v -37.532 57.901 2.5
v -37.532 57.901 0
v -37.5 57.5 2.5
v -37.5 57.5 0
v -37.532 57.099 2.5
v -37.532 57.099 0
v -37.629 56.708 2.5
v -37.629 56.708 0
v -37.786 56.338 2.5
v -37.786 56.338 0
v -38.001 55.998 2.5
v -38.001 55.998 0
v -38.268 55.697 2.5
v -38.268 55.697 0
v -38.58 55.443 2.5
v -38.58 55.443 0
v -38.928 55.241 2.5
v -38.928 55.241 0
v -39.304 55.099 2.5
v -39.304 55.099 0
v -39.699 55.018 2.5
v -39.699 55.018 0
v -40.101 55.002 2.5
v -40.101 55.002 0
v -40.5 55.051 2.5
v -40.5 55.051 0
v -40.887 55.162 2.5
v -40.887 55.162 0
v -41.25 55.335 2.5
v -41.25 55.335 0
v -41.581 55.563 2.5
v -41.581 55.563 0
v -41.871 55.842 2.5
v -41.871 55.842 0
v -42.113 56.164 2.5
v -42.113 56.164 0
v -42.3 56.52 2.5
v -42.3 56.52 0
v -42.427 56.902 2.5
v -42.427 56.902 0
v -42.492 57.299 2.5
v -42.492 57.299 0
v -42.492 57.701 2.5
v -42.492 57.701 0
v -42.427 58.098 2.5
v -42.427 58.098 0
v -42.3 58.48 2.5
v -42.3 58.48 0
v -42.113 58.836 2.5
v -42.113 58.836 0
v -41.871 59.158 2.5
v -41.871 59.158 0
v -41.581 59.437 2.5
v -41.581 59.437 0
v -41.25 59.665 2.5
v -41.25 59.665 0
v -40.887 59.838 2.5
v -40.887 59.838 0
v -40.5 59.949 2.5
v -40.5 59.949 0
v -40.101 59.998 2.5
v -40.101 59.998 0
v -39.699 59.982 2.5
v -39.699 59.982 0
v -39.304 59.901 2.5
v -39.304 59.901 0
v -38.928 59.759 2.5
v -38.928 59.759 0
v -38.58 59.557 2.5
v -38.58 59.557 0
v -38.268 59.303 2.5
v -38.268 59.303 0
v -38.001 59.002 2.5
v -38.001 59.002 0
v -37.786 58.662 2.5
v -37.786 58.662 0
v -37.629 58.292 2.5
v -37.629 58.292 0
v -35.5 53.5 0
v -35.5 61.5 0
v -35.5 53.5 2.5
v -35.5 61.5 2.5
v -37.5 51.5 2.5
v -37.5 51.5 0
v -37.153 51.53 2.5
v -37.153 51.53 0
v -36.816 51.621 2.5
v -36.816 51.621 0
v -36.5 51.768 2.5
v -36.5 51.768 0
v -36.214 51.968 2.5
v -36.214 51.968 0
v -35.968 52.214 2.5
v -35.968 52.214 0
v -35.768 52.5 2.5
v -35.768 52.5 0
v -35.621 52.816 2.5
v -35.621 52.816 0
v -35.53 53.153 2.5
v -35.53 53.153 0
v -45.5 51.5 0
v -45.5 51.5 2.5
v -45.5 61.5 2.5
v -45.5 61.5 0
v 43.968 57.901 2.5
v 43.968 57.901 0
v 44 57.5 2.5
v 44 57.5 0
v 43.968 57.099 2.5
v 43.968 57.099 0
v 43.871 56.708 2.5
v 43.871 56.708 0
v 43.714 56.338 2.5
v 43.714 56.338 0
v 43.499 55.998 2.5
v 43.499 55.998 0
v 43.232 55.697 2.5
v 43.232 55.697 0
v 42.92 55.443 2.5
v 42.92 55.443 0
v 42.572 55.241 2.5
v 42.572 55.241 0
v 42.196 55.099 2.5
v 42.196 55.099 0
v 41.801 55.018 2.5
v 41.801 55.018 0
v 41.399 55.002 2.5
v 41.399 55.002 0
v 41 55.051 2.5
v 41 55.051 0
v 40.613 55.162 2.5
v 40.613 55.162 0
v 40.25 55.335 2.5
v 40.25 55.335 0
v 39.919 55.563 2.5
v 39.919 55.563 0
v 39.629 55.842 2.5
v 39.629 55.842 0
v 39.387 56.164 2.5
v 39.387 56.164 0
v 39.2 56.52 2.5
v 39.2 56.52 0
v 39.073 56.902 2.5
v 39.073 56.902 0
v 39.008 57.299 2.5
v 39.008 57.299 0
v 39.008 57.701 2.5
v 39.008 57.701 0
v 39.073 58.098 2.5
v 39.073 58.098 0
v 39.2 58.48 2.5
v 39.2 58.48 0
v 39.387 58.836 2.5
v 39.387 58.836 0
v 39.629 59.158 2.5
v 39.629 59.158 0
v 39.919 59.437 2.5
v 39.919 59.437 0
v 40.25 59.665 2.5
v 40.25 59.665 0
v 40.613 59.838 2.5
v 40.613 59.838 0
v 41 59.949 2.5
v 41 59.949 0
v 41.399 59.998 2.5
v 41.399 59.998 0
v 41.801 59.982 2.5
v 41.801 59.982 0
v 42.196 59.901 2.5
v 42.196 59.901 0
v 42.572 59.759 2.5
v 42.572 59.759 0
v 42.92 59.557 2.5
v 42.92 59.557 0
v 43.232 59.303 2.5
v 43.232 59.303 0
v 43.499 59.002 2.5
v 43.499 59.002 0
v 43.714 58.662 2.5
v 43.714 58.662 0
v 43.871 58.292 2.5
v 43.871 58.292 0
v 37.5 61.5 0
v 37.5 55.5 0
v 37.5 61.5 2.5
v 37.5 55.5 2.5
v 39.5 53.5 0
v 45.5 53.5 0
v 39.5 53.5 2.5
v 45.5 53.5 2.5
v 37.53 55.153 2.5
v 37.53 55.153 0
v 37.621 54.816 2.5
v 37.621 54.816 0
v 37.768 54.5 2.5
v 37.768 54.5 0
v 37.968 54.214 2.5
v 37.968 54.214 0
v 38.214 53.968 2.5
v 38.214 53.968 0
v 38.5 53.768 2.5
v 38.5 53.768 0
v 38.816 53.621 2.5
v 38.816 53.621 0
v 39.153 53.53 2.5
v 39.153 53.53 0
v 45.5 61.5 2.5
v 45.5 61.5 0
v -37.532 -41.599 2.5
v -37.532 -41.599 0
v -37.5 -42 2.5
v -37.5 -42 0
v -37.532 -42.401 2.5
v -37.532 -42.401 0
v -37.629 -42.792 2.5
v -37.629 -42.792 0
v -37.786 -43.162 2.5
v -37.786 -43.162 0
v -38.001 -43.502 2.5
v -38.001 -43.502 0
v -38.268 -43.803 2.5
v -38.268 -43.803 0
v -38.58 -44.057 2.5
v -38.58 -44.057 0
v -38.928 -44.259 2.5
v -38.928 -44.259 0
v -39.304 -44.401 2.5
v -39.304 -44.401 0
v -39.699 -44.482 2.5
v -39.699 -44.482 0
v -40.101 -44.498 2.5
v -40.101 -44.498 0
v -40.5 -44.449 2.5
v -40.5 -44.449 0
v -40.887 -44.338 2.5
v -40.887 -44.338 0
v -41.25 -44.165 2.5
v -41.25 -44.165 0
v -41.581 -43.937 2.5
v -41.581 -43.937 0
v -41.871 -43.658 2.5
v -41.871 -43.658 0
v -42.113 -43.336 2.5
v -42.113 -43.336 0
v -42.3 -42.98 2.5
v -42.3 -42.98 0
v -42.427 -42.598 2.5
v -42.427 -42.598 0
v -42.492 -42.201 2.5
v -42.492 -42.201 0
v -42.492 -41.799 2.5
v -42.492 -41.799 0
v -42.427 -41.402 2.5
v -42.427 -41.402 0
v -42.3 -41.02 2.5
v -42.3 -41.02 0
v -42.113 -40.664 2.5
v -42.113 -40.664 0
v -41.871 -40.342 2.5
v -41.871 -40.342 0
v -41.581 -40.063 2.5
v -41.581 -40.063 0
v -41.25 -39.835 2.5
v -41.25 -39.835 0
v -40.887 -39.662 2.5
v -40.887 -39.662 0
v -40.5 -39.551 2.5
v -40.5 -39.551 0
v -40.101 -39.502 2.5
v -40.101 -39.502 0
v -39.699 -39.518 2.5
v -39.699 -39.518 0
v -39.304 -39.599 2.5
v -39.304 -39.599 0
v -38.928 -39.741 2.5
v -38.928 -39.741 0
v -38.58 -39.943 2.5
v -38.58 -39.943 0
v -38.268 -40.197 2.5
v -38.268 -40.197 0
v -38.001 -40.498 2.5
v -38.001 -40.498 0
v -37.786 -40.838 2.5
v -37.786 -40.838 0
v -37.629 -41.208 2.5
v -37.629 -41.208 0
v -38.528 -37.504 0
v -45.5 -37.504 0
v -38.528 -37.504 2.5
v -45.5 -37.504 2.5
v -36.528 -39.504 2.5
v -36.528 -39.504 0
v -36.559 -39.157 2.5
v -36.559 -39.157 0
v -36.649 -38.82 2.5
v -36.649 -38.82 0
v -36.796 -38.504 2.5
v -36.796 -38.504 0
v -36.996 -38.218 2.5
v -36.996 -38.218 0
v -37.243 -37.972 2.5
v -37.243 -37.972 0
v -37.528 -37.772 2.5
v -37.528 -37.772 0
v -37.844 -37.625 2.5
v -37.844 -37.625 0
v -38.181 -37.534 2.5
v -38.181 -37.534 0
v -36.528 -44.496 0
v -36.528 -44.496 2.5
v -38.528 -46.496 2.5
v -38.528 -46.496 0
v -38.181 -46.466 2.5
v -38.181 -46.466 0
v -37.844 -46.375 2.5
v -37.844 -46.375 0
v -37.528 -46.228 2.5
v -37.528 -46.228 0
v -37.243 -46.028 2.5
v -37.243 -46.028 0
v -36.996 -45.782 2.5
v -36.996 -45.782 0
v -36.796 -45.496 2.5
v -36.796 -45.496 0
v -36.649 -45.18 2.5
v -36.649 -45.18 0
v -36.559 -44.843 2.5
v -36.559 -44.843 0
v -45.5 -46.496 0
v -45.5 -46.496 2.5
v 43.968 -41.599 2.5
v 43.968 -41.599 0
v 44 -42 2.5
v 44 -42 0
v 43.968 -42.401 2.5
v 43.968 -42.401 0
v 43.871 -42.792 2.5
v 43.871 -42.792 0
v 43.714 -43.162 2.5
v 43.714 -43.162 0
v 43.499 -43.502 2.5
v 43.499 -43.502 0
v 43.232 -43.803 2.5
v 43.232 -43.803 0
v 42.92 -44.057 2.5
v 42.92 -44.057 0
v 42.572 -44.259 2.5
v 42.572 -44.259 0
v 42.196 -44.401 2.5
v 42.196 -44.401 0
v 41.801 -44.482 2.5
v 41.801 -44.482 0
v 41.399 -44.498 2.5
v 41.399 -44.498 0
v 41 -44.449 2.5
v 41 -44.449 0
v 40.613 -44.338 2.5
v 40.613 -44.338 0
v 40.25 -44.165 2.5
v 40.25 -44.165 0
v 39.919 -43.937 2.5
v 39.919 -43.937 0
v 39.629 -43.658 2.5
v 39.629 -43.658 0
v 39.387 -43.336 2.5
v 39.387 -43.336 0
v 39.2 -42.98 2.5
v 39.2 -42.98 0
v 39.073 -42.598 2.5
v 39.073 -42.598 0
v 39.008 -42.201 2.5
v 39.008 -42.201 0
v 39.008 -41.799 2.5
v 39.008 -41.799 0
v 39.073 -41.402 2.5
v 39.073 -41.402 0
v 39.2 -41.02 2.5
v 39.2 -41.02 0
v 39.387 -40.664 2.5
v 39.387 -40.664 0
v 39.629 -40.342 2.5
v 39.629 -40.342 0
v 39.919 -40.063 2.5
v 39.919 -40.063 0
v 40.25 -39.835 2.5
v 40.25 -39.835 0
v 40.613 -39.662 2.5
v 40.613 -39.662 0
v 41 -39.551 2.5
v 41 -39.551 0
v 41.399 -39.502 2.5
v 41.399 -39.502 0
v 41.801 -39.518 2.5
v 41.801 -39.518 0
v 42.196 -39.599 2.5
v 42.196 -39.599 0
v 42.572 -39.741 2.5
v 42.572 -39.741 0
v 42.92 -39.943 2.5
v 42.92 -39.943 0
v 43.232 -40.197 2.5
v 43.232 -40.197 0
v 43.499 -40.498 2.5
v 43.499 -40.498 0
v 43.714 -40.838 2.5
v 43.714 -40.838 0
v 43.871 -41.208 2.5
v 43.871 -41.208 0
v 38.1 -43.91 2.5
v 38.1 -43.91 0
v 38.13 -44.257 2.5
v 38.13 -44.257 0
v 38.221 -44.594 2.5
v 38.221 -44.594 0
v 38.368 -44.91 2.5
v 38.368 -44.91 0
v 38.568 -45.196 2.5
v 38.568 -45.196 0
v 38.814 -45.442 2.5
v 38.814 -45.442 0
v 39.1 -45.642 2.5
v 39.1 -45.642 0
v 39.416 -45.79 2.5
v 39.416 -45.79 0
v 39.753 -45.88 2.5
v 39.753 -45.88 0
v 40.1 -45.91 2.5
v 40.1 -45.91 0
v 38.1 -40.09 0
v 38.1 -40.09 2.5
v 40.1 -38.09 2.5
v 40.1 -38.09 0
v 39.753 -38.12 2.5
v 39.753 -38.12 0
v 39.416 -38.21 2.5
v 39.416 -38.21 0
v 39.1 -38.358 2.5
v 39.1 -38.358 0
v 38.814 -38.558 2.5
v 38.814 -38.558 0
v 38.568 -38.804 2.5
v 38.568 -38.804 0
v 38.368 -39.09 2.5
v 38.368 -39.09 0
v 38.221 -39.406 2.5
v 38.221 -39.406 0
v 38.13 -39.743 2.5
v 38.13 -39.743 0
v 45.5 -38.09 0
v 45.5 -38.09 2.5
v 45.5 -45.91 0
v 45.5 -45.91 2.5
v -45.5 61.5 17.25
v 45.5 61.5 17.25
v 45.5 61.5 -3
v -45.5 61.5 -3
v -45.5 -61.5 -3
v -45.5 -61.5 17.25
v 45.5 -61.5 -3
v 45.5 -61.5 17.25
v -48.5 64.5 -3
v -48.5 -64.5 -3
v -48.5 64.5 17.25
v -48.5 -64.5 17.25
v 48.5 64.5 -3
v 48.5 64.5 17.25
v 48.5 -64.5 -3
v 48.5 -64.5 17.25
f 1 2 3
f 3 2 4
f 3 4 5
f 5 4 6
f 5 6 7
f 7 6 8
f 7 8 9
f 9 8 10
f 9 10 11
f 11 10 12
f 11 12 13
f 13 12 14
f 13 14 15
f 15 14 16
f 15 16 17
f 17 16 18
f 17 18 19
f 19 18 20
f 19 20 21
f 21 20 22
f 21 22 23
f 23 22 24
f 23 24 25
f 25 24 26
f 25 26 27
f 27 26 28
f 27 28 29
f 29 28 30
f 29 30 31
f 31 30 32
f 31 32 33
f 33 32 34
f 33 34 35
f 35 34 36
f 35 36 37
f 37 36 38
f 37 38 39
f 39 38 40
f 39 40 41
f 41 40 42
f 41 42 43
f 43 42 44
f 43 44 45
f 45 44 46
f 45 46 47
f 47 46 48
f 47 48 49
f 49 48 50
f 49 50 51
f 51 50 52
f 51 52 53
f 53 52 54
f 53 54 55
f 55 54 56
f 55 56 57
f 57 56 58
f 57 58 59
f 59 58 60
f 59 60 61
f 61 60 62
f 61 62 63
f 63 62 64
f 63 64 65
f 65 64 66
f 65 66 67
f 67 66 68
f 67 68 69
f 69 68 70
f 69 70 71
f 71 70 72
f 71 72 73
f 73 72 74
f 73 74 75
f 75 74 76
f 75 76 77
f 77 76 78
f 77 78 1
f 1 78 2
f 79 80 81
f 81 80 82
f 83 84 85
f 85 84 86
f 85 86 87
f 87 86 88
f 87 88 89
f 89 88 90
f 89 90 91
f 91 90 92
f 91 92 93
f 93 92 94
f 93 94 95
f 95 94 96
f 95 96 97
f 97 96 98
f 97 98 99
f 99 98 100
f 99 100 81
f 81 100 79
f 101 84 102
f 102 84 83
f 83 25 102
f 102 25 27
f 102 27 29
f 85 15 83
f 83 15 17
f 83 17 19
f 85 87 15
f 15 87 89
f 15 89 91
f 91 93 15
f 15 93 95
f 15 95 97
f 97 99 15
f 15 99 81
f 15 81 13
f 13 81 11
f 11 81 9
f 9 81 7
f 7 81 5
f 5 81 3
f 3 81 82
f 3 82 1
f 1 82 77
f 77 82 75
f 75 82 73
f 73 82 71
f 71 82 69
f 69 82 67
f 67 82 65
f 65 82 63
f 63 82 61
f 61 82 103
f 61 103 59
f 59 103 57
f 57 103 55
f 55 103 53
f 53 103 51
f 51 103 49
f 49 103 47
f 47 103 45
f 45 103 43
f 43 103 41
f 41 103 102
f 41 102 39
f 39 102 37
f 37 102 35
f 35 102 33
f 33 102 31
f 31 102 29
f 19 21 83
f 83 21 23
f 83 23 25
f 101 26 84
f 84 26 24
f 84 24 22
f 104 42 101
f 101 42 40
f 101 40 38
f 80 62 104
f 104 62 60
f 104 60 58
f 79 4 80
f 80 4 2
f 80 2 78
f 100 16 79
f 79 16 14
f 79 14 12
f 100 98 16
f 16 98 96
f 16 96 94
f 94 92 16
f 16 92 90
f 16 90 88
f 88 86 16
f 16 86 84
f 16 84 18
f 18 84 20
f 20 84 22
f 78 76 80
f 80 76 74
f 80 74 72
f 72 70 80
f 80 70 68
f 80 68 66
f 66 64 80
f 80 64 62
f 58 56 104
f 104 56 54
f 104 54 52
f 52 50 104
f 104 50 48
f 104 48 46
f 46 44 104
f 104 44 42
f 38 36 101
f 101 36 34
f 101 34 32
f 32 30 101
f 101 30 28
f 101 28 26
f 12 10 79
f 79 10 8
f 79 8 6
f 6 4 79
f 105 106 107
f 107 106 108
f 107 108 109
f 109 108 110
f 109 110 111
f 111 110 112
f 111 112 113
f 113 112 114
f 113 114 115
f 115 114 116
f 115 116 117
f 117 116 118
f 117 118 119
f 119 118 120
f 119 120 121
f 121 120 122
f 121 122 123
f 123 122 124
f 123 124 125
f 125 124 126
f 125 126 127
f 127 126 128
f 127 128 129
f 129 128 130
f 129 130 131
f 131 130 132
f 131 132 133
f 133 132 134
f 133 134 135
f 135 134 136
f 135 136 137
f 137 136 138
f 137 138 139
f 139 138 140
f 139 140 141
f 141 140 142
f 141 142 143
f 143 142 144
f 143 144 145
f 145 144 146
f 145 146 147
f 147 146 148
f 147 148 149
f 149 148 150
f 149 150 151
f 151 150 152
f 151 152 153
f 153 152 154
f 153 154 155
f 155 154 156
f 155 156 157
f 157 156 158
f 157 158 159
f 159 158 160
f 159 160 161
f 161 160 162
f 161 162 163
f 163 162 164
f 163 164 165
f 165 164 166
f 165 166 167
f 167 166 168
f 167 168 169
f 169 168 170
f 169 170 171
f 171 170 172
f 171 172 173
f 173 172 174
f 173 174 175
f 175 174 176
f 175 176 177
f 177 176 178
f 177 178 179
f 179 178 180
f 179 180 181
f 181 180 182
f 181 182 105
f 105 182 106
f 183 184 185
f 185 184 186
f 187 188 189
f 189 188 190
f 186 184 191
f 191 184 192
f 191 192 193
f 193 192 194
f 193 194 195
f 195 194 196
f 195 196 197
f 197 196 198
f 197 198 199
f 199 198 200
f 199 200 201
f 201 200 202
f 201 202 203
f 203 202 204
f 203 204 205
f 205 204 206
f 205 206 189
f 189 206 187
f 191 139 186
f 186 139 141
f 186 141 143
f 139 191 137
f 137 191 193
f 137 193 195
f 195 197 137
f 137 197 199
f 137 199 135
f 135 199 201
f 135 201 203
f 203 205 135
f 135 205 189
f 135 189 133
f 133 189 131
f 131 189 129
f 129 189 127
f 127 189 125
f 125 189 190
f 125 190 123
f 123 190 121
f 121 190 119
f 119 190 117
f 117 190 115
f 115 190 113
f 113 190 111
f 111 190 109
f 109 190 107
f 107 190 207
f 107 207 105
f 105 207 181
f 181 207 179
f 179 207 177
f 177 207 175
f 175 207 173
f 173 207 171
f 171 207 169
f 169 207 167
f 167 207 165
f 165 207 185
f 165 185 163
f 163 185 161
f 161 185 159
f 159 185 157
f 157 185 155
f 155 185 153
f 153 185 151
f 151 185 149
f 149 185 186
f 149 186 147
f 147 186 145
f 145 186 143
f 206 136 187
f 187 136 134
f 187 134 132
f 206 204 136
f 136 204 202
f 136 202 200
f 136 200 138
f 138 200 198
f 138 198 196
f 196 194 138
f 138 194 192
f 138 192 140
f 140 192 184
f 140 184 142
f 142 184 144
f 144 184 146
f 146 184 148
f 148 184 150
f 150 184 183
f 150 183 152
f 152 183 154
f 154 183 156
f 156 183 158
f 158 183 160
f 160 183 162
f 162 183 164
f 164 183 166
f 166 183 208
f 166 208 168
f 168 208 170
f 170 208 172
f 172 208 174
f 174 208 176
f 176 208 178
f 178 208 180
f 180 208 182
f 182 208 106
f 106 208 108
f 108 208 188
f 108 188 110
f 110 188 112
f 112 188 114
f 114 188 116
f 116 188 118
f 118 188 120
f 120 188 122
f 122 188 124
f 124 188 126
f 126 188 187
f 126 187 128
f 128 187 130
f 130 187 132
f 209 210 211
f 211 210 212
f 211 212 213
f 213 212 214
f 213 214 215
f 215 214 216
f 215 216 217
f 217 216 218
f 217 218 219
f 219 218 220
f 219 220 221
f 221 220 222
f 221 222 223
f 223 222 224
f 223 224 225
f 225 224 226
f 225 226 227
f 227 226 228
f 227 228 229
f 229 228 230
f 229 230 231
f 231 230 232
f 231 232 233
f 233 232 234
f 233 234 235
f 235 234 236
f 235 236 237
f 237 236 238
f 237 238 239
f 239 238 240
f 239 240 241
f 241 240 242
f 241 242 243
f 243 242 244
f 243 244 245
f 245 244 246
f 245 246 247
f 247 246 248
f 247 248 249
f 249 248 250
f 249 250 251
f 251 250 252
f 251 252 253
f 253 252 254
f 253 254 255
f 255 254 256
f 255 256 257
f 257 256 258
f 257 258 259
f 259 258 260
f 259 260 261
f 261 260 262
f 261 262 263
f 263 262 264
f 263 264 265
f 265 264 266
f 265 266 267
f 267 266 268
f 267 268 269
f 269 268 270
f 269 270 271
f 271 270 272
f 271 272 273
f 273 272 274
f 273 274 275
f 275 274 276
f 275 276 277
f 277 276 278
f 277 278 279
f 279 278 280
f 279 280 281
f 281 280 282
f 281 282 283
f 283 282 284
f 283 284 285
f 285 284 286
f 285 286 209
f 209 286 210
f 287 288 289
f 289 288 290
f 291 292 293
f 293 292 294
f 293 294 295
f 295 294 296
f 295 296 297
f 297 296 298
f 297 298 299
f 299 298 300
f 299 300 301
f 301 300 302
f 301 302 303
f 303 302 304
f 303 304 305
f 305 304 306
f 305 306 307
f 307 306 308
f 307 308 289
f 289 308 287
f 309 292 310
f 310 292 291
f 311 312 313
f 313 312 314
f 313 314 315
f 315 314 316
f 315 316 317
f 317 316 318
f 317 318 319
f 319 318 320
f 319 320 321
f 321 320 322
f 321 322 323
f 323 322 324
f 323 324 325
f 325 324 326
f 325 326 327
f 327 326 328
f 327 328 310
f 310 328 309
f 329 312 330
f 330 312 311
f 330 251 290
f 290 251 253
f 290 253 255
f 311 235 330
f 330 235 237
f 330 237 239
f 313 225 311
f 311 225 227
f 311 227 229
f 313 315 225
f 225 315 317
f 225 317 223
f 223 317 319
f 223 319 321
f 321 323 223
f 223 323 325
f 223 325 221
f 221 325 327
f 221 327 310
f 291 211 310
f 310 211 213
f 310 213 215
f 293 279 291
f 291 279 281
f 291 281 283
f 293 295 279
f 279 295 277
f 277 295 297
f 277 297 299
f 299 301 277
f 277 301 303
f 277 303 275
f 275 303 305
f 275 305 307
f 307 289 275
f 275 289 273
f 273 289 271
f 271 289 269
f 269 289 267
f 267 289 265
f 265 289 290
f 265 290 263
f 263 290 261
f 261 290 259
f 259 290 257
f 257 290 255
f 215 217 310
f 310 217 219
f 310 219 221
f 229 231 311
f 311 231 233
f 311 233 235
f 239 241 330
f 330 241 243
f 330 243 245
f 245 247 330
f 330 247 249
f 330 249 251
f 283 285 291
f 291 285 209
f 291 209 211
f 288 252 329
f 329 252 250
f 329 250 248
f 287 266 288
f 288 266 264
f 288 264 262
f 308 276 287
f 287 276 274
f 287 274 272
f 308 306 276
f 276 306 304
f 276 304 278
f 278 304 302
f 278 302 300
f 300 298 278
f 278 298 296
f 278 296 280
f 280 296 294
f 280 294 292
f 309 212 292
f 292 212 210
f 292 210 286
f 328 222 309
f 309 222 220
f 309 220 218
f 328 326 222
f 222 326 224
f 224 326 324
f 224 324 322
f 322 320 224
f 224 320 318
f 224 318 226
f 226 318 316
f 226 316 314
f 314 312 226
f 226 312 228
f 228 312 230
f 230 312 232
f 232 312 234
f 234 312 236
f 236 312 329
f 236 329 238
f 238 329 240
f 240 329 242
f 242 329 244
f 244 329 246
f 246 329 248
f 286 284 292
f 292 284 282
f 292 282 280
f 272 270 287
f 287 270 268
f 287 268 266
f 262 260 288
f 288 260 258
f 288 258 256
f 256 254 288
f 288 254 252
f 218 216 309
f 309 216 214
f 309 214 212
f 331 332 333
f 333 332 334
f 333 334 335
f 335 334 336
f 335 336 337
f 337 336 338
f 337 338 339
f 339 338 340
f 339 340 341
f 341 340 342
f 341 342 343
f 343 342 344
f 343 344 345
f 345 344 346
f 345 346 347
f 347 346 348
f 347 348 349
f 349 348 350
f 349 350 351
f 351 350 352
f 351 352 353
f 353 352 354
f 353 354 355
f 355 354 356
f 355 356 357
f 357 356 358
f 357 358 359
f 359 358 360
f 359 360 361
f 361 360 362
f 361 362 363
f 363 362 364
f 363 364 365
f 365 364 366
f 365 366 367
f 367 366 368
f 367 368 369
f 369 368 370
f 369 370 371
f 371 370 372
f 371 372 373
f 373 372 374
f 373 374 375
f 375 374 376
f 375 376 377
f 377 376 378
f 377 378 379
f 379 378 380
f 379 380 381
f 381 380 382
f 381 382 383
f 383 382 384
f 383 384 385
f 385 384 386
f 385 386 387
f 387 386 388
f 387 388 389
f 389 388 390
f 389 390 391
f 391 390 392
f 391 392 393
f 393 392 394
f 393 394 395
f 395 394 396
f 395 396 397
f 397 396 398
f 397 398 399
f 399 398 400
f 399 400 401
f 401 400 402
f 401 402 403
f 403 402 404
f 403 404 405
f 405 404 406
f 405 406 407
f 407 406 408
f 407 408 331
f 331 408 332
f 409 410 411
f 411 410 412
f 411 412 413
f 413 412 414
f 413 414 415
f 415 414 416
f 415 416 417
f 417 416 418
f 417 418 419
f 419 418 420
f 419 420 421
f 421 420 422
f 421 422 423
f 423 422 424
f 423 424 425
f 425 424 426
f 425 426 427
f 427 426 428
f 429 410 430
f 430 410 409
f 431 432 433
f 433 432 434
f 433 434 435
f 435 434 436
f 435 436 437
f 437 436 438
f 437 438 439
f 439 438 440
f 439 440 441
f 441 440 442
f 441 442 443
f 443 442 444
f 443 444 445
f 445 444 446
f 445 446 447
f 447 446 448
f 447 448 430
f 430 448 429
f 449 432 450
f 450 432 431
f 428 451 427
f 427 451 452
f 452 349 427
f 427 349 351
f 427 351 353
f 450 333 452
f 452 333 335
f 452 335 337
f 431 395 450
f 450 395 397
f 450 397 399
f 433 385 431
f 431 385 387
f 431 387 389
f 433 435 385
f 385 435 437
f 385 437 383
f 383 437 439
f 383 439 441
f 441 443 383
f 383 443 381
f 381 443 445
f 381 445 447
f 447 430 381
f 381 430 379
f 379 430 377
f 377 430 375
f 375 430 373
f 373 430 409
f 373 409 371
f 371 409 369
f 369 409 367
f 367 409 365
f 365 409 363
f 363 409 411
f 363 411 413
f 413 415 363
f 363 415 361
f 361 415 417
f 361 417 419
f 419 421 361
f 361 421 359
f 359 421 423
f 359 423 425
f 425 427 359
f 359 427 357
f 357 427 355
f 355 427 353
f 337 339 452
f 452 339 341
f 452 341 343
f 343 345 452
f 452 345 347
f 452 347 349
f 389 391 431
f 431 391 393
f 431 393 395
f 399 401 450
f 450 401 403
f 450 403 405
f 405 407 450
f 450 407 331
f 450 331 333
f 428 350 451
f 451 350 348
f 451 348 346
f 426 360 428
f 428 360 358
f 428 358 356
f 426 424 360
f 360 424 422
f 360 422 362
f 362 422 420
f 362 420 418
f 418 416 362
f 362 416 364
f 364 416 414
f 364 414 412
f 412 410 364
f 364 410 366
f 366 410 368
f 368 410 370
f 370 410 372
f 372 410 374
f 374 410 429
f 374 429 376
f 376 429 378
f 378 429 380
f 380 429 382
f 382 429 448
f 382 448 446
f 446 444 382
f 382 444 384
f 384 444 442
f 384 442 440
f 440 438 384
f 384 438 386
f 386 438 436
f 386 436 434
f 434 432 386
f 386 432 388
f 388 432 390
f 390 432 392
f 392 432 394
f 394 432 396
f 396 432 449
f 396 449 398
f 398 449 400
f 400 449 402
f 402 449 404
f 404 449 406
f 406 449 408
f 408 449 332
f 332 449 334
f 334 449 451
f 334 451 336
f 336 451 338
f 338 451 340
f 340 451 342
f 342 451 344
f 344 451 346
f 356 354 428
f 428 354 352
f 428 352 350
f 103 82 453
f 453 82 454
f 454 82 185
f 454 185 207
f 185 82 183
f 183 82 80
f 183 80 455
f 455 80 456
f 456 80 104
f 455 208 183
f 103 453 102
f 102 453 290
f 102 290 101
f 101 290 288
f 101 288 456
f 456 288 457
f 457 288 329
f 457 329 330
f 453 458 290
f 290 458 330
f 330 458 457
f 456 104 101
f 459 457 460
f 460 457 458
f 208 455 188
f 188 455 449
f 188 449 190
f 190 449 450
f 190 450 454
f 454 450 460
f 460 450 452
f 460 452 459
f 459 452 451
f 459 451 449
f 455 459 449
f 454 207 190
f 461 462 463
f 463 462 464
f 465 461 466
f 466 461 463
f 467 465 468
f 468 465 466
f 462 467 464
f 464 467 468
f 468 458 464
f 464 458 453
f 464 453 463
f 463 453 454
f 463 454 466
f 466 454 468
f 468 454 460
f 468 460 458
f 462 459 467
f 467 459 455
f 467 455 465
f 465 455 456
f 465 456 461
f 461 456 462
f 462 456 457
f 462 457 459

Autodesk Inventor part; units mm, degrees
ref_plane "YZ Plane" through (0, 0, 0) normal (1, 0, 0) x (0, 1, 0)
ref_plane "XZ Plane" through (0, 0, 0) normal (0, 1, 0) x (-1, 0, 0)
ref_plane "Piano di lavoro1" through (0, 0, 0) normal (0, 0, 1) x (1, 0, 0)
sketch "Schizzo1" plane through (0, 0, 0) normal (0, 0, 1) x (1, 0, 0)
  line L0 (42, 54.3) -> (-33, 54.3) projected
  line L1 (42, 19.3) -> (42, 54.3) projected
  line L2 (-45, -61) -> (45, -61) projected
  line L3 (-45, 61) -> (-45, -61) projected
  line L4 (45, 61) -> (-45, 61) projected
  circle A0 centre (-40, 57.5) radius 2.5 projected
  circle A1 centre (-40, -42) radius 2.5 projected
  circle A2 centre (41.5, -42) radius 2.5 projected
  circle A3 centre (41.5, 57.5) radius 2.5 projected
  line L5 (45, -61) -> (45, 61) projected
  line L6 (-45.5, 61.5) -> (-45.5, -61.5)
  line L7 (-45.5, -61.5) -> (45.5, -61.5)
  line L8 (45.5, -61.5) -> (45.5, 61.5)
  line L9 (45.5, 61.5) -> (-45.5, 61.5)
  line L10 (48.5, 64.5) -> (48.5, -64.5)
  line L11 (48.5, -64.5) -> (-48.5, -64.5)
  line L12 (-48.5, -64.5) -> (-48.5, 64.5)
  line L13 (-48.5, 64.5) -> (48.5, 64.5)
  point P0 (0, 0)
  dimension "d0" = 0.5
  dimension "d1" = 3
extrude "Estrusione1" add sketch "Schizzo1" along normal blind 17.25 contours L10 L11 L12 L13
move faces "Sposta1" translate (0, 0, -3) faces at (-47.5, 20.5, 0)
sketch "Schizzo2" plane through (0, 0, 0) normal (0, 0, 1) x (1, 0, 0)
  circle A0 centre (41.5, 57.5) radius 2.5 projected
  circle A1 centre (-40, 57.5) radius 2.5 projected
  circle A2 centre (41.5, -42) radius 2.5 projected
  circle A3 centre (-40, -42) radius 2.5 projected
  line L0 (-45.5, 61.5) -> (45.5, 61.5) projected
  line L1 (-45.5, 61.5) -> (45.5, 61.5) projected
  line L2 (45.5, 61.5) -> (45.5, -61.5) projected
  line L3 (45.5, 61.5) -> (45.5, -61.5) projected
  line L4 (-45.5, -61.5) -> (-45.5, 61.5) projected
  line L5 (-45.5, -61.5) -> (-45.5, 61.5) projected
  line L6 (45.5, -61.5) -> (-45.5, -61.5) projected
  line L7 (45.5, -61.5) -> (-45.5, -61.5) projected
  line L8 (45.5, 61.5) -> (37.5, 61.5)
  line L9 (37.5, 61.5) -> (37.5, 55.5)
  line L10 (39.5, 53.5) -> (45.5, 53.5)
  line L11 (45.5, 53.5) -> (45.5, 61.5)
  arc A4 (37.5, 55.5) -> (39.5, 53.5) centre (39.5, 55.5) ccw
  line L12 (-45.5, 61.5) -> (-35.5, 61.5)
  line L13 (-35.5, 61.5) -> (-35.5, 53.5)
  line L14 (-37.5, 51.5) -> (-45.5, 51.5)
  line L15 (-45.5, 51.5) -> (-45.5, 61.5)
  arc A5 (-37.5, 51.5) -> (-35.5, 53.5) centre (-37.5, 53.5) ccw
  line L16 (-45.5, -61.5) -> (-45.5, 61.5) projected
  line L17 (-45.5, -37.8875) -> (-45.5, -46.8794)
  line L18 (-45.5, -46.496) -> (-38.5282, -46.496)
  line L19 (-36.5282, -44.496) -> (-36.5282, -39.504)
  line L20 (-38.5282, -37.504) -> (-45.5, -37.504)
  arc A6 (-38.5282, -46.496) -> (-36.5282, -44.496) centre (-38.5282, -44.496) ccw
  arc A7 (-36.5282, -39.504) -> (-38.5282, -37.504) centre (-38.5282, -39.504) ccw
  line L21 (45.5, 61.5) -> (45.5, -61.5) projected
  line L22 (45.5, -45.9102) -> (45.5, -38.0898)
  line L23 (45.5, -38.0898) -> (40.1, -38.0898)
  line L24 (38.1, -40.0898) -> (38.1, -43.9102)
  line L25 (40.1, -45.9102) -> (45.5, -45.9102)
  arc A8 (38.1, -43.9102) -> (40.1, -45.9102) centre (40.1, -43.9102) ccw
  arc A9 (40.1, -38.0898) -> (38.1, -40.0898) centre (40.1, -40.0898) ccw
  point P0 (0, 0)
  point P1 (37.5, 53.5)
  point P2 (-35.5, 51.5)
  point P3 (-36.5282, -42.3835)
  point P4 (-36.5282, -42)
  point P5 (38.1, -38.0898)
  dimension "d7" = 8
  dimension "d8" = 8
  dimension "d9" = 2
  dimension "d10" = 10
  dimension "d11" = 10
  dimension "d12" = 2
  dimension "d13" = 2
  dimension "d14" = 7.4
  dimension "d15" = 2
extrude "Estrusione2" add sketch "Schizzo2" along normal blind 2.5 contours L0 L13 A5 L14 L4 | L0 L2 L10 A4 L9 | L20 A7 L19 A6 L18 L4 | L2 L25 A8 L24 A9 L23
properties part number "_Stampa 3D"
